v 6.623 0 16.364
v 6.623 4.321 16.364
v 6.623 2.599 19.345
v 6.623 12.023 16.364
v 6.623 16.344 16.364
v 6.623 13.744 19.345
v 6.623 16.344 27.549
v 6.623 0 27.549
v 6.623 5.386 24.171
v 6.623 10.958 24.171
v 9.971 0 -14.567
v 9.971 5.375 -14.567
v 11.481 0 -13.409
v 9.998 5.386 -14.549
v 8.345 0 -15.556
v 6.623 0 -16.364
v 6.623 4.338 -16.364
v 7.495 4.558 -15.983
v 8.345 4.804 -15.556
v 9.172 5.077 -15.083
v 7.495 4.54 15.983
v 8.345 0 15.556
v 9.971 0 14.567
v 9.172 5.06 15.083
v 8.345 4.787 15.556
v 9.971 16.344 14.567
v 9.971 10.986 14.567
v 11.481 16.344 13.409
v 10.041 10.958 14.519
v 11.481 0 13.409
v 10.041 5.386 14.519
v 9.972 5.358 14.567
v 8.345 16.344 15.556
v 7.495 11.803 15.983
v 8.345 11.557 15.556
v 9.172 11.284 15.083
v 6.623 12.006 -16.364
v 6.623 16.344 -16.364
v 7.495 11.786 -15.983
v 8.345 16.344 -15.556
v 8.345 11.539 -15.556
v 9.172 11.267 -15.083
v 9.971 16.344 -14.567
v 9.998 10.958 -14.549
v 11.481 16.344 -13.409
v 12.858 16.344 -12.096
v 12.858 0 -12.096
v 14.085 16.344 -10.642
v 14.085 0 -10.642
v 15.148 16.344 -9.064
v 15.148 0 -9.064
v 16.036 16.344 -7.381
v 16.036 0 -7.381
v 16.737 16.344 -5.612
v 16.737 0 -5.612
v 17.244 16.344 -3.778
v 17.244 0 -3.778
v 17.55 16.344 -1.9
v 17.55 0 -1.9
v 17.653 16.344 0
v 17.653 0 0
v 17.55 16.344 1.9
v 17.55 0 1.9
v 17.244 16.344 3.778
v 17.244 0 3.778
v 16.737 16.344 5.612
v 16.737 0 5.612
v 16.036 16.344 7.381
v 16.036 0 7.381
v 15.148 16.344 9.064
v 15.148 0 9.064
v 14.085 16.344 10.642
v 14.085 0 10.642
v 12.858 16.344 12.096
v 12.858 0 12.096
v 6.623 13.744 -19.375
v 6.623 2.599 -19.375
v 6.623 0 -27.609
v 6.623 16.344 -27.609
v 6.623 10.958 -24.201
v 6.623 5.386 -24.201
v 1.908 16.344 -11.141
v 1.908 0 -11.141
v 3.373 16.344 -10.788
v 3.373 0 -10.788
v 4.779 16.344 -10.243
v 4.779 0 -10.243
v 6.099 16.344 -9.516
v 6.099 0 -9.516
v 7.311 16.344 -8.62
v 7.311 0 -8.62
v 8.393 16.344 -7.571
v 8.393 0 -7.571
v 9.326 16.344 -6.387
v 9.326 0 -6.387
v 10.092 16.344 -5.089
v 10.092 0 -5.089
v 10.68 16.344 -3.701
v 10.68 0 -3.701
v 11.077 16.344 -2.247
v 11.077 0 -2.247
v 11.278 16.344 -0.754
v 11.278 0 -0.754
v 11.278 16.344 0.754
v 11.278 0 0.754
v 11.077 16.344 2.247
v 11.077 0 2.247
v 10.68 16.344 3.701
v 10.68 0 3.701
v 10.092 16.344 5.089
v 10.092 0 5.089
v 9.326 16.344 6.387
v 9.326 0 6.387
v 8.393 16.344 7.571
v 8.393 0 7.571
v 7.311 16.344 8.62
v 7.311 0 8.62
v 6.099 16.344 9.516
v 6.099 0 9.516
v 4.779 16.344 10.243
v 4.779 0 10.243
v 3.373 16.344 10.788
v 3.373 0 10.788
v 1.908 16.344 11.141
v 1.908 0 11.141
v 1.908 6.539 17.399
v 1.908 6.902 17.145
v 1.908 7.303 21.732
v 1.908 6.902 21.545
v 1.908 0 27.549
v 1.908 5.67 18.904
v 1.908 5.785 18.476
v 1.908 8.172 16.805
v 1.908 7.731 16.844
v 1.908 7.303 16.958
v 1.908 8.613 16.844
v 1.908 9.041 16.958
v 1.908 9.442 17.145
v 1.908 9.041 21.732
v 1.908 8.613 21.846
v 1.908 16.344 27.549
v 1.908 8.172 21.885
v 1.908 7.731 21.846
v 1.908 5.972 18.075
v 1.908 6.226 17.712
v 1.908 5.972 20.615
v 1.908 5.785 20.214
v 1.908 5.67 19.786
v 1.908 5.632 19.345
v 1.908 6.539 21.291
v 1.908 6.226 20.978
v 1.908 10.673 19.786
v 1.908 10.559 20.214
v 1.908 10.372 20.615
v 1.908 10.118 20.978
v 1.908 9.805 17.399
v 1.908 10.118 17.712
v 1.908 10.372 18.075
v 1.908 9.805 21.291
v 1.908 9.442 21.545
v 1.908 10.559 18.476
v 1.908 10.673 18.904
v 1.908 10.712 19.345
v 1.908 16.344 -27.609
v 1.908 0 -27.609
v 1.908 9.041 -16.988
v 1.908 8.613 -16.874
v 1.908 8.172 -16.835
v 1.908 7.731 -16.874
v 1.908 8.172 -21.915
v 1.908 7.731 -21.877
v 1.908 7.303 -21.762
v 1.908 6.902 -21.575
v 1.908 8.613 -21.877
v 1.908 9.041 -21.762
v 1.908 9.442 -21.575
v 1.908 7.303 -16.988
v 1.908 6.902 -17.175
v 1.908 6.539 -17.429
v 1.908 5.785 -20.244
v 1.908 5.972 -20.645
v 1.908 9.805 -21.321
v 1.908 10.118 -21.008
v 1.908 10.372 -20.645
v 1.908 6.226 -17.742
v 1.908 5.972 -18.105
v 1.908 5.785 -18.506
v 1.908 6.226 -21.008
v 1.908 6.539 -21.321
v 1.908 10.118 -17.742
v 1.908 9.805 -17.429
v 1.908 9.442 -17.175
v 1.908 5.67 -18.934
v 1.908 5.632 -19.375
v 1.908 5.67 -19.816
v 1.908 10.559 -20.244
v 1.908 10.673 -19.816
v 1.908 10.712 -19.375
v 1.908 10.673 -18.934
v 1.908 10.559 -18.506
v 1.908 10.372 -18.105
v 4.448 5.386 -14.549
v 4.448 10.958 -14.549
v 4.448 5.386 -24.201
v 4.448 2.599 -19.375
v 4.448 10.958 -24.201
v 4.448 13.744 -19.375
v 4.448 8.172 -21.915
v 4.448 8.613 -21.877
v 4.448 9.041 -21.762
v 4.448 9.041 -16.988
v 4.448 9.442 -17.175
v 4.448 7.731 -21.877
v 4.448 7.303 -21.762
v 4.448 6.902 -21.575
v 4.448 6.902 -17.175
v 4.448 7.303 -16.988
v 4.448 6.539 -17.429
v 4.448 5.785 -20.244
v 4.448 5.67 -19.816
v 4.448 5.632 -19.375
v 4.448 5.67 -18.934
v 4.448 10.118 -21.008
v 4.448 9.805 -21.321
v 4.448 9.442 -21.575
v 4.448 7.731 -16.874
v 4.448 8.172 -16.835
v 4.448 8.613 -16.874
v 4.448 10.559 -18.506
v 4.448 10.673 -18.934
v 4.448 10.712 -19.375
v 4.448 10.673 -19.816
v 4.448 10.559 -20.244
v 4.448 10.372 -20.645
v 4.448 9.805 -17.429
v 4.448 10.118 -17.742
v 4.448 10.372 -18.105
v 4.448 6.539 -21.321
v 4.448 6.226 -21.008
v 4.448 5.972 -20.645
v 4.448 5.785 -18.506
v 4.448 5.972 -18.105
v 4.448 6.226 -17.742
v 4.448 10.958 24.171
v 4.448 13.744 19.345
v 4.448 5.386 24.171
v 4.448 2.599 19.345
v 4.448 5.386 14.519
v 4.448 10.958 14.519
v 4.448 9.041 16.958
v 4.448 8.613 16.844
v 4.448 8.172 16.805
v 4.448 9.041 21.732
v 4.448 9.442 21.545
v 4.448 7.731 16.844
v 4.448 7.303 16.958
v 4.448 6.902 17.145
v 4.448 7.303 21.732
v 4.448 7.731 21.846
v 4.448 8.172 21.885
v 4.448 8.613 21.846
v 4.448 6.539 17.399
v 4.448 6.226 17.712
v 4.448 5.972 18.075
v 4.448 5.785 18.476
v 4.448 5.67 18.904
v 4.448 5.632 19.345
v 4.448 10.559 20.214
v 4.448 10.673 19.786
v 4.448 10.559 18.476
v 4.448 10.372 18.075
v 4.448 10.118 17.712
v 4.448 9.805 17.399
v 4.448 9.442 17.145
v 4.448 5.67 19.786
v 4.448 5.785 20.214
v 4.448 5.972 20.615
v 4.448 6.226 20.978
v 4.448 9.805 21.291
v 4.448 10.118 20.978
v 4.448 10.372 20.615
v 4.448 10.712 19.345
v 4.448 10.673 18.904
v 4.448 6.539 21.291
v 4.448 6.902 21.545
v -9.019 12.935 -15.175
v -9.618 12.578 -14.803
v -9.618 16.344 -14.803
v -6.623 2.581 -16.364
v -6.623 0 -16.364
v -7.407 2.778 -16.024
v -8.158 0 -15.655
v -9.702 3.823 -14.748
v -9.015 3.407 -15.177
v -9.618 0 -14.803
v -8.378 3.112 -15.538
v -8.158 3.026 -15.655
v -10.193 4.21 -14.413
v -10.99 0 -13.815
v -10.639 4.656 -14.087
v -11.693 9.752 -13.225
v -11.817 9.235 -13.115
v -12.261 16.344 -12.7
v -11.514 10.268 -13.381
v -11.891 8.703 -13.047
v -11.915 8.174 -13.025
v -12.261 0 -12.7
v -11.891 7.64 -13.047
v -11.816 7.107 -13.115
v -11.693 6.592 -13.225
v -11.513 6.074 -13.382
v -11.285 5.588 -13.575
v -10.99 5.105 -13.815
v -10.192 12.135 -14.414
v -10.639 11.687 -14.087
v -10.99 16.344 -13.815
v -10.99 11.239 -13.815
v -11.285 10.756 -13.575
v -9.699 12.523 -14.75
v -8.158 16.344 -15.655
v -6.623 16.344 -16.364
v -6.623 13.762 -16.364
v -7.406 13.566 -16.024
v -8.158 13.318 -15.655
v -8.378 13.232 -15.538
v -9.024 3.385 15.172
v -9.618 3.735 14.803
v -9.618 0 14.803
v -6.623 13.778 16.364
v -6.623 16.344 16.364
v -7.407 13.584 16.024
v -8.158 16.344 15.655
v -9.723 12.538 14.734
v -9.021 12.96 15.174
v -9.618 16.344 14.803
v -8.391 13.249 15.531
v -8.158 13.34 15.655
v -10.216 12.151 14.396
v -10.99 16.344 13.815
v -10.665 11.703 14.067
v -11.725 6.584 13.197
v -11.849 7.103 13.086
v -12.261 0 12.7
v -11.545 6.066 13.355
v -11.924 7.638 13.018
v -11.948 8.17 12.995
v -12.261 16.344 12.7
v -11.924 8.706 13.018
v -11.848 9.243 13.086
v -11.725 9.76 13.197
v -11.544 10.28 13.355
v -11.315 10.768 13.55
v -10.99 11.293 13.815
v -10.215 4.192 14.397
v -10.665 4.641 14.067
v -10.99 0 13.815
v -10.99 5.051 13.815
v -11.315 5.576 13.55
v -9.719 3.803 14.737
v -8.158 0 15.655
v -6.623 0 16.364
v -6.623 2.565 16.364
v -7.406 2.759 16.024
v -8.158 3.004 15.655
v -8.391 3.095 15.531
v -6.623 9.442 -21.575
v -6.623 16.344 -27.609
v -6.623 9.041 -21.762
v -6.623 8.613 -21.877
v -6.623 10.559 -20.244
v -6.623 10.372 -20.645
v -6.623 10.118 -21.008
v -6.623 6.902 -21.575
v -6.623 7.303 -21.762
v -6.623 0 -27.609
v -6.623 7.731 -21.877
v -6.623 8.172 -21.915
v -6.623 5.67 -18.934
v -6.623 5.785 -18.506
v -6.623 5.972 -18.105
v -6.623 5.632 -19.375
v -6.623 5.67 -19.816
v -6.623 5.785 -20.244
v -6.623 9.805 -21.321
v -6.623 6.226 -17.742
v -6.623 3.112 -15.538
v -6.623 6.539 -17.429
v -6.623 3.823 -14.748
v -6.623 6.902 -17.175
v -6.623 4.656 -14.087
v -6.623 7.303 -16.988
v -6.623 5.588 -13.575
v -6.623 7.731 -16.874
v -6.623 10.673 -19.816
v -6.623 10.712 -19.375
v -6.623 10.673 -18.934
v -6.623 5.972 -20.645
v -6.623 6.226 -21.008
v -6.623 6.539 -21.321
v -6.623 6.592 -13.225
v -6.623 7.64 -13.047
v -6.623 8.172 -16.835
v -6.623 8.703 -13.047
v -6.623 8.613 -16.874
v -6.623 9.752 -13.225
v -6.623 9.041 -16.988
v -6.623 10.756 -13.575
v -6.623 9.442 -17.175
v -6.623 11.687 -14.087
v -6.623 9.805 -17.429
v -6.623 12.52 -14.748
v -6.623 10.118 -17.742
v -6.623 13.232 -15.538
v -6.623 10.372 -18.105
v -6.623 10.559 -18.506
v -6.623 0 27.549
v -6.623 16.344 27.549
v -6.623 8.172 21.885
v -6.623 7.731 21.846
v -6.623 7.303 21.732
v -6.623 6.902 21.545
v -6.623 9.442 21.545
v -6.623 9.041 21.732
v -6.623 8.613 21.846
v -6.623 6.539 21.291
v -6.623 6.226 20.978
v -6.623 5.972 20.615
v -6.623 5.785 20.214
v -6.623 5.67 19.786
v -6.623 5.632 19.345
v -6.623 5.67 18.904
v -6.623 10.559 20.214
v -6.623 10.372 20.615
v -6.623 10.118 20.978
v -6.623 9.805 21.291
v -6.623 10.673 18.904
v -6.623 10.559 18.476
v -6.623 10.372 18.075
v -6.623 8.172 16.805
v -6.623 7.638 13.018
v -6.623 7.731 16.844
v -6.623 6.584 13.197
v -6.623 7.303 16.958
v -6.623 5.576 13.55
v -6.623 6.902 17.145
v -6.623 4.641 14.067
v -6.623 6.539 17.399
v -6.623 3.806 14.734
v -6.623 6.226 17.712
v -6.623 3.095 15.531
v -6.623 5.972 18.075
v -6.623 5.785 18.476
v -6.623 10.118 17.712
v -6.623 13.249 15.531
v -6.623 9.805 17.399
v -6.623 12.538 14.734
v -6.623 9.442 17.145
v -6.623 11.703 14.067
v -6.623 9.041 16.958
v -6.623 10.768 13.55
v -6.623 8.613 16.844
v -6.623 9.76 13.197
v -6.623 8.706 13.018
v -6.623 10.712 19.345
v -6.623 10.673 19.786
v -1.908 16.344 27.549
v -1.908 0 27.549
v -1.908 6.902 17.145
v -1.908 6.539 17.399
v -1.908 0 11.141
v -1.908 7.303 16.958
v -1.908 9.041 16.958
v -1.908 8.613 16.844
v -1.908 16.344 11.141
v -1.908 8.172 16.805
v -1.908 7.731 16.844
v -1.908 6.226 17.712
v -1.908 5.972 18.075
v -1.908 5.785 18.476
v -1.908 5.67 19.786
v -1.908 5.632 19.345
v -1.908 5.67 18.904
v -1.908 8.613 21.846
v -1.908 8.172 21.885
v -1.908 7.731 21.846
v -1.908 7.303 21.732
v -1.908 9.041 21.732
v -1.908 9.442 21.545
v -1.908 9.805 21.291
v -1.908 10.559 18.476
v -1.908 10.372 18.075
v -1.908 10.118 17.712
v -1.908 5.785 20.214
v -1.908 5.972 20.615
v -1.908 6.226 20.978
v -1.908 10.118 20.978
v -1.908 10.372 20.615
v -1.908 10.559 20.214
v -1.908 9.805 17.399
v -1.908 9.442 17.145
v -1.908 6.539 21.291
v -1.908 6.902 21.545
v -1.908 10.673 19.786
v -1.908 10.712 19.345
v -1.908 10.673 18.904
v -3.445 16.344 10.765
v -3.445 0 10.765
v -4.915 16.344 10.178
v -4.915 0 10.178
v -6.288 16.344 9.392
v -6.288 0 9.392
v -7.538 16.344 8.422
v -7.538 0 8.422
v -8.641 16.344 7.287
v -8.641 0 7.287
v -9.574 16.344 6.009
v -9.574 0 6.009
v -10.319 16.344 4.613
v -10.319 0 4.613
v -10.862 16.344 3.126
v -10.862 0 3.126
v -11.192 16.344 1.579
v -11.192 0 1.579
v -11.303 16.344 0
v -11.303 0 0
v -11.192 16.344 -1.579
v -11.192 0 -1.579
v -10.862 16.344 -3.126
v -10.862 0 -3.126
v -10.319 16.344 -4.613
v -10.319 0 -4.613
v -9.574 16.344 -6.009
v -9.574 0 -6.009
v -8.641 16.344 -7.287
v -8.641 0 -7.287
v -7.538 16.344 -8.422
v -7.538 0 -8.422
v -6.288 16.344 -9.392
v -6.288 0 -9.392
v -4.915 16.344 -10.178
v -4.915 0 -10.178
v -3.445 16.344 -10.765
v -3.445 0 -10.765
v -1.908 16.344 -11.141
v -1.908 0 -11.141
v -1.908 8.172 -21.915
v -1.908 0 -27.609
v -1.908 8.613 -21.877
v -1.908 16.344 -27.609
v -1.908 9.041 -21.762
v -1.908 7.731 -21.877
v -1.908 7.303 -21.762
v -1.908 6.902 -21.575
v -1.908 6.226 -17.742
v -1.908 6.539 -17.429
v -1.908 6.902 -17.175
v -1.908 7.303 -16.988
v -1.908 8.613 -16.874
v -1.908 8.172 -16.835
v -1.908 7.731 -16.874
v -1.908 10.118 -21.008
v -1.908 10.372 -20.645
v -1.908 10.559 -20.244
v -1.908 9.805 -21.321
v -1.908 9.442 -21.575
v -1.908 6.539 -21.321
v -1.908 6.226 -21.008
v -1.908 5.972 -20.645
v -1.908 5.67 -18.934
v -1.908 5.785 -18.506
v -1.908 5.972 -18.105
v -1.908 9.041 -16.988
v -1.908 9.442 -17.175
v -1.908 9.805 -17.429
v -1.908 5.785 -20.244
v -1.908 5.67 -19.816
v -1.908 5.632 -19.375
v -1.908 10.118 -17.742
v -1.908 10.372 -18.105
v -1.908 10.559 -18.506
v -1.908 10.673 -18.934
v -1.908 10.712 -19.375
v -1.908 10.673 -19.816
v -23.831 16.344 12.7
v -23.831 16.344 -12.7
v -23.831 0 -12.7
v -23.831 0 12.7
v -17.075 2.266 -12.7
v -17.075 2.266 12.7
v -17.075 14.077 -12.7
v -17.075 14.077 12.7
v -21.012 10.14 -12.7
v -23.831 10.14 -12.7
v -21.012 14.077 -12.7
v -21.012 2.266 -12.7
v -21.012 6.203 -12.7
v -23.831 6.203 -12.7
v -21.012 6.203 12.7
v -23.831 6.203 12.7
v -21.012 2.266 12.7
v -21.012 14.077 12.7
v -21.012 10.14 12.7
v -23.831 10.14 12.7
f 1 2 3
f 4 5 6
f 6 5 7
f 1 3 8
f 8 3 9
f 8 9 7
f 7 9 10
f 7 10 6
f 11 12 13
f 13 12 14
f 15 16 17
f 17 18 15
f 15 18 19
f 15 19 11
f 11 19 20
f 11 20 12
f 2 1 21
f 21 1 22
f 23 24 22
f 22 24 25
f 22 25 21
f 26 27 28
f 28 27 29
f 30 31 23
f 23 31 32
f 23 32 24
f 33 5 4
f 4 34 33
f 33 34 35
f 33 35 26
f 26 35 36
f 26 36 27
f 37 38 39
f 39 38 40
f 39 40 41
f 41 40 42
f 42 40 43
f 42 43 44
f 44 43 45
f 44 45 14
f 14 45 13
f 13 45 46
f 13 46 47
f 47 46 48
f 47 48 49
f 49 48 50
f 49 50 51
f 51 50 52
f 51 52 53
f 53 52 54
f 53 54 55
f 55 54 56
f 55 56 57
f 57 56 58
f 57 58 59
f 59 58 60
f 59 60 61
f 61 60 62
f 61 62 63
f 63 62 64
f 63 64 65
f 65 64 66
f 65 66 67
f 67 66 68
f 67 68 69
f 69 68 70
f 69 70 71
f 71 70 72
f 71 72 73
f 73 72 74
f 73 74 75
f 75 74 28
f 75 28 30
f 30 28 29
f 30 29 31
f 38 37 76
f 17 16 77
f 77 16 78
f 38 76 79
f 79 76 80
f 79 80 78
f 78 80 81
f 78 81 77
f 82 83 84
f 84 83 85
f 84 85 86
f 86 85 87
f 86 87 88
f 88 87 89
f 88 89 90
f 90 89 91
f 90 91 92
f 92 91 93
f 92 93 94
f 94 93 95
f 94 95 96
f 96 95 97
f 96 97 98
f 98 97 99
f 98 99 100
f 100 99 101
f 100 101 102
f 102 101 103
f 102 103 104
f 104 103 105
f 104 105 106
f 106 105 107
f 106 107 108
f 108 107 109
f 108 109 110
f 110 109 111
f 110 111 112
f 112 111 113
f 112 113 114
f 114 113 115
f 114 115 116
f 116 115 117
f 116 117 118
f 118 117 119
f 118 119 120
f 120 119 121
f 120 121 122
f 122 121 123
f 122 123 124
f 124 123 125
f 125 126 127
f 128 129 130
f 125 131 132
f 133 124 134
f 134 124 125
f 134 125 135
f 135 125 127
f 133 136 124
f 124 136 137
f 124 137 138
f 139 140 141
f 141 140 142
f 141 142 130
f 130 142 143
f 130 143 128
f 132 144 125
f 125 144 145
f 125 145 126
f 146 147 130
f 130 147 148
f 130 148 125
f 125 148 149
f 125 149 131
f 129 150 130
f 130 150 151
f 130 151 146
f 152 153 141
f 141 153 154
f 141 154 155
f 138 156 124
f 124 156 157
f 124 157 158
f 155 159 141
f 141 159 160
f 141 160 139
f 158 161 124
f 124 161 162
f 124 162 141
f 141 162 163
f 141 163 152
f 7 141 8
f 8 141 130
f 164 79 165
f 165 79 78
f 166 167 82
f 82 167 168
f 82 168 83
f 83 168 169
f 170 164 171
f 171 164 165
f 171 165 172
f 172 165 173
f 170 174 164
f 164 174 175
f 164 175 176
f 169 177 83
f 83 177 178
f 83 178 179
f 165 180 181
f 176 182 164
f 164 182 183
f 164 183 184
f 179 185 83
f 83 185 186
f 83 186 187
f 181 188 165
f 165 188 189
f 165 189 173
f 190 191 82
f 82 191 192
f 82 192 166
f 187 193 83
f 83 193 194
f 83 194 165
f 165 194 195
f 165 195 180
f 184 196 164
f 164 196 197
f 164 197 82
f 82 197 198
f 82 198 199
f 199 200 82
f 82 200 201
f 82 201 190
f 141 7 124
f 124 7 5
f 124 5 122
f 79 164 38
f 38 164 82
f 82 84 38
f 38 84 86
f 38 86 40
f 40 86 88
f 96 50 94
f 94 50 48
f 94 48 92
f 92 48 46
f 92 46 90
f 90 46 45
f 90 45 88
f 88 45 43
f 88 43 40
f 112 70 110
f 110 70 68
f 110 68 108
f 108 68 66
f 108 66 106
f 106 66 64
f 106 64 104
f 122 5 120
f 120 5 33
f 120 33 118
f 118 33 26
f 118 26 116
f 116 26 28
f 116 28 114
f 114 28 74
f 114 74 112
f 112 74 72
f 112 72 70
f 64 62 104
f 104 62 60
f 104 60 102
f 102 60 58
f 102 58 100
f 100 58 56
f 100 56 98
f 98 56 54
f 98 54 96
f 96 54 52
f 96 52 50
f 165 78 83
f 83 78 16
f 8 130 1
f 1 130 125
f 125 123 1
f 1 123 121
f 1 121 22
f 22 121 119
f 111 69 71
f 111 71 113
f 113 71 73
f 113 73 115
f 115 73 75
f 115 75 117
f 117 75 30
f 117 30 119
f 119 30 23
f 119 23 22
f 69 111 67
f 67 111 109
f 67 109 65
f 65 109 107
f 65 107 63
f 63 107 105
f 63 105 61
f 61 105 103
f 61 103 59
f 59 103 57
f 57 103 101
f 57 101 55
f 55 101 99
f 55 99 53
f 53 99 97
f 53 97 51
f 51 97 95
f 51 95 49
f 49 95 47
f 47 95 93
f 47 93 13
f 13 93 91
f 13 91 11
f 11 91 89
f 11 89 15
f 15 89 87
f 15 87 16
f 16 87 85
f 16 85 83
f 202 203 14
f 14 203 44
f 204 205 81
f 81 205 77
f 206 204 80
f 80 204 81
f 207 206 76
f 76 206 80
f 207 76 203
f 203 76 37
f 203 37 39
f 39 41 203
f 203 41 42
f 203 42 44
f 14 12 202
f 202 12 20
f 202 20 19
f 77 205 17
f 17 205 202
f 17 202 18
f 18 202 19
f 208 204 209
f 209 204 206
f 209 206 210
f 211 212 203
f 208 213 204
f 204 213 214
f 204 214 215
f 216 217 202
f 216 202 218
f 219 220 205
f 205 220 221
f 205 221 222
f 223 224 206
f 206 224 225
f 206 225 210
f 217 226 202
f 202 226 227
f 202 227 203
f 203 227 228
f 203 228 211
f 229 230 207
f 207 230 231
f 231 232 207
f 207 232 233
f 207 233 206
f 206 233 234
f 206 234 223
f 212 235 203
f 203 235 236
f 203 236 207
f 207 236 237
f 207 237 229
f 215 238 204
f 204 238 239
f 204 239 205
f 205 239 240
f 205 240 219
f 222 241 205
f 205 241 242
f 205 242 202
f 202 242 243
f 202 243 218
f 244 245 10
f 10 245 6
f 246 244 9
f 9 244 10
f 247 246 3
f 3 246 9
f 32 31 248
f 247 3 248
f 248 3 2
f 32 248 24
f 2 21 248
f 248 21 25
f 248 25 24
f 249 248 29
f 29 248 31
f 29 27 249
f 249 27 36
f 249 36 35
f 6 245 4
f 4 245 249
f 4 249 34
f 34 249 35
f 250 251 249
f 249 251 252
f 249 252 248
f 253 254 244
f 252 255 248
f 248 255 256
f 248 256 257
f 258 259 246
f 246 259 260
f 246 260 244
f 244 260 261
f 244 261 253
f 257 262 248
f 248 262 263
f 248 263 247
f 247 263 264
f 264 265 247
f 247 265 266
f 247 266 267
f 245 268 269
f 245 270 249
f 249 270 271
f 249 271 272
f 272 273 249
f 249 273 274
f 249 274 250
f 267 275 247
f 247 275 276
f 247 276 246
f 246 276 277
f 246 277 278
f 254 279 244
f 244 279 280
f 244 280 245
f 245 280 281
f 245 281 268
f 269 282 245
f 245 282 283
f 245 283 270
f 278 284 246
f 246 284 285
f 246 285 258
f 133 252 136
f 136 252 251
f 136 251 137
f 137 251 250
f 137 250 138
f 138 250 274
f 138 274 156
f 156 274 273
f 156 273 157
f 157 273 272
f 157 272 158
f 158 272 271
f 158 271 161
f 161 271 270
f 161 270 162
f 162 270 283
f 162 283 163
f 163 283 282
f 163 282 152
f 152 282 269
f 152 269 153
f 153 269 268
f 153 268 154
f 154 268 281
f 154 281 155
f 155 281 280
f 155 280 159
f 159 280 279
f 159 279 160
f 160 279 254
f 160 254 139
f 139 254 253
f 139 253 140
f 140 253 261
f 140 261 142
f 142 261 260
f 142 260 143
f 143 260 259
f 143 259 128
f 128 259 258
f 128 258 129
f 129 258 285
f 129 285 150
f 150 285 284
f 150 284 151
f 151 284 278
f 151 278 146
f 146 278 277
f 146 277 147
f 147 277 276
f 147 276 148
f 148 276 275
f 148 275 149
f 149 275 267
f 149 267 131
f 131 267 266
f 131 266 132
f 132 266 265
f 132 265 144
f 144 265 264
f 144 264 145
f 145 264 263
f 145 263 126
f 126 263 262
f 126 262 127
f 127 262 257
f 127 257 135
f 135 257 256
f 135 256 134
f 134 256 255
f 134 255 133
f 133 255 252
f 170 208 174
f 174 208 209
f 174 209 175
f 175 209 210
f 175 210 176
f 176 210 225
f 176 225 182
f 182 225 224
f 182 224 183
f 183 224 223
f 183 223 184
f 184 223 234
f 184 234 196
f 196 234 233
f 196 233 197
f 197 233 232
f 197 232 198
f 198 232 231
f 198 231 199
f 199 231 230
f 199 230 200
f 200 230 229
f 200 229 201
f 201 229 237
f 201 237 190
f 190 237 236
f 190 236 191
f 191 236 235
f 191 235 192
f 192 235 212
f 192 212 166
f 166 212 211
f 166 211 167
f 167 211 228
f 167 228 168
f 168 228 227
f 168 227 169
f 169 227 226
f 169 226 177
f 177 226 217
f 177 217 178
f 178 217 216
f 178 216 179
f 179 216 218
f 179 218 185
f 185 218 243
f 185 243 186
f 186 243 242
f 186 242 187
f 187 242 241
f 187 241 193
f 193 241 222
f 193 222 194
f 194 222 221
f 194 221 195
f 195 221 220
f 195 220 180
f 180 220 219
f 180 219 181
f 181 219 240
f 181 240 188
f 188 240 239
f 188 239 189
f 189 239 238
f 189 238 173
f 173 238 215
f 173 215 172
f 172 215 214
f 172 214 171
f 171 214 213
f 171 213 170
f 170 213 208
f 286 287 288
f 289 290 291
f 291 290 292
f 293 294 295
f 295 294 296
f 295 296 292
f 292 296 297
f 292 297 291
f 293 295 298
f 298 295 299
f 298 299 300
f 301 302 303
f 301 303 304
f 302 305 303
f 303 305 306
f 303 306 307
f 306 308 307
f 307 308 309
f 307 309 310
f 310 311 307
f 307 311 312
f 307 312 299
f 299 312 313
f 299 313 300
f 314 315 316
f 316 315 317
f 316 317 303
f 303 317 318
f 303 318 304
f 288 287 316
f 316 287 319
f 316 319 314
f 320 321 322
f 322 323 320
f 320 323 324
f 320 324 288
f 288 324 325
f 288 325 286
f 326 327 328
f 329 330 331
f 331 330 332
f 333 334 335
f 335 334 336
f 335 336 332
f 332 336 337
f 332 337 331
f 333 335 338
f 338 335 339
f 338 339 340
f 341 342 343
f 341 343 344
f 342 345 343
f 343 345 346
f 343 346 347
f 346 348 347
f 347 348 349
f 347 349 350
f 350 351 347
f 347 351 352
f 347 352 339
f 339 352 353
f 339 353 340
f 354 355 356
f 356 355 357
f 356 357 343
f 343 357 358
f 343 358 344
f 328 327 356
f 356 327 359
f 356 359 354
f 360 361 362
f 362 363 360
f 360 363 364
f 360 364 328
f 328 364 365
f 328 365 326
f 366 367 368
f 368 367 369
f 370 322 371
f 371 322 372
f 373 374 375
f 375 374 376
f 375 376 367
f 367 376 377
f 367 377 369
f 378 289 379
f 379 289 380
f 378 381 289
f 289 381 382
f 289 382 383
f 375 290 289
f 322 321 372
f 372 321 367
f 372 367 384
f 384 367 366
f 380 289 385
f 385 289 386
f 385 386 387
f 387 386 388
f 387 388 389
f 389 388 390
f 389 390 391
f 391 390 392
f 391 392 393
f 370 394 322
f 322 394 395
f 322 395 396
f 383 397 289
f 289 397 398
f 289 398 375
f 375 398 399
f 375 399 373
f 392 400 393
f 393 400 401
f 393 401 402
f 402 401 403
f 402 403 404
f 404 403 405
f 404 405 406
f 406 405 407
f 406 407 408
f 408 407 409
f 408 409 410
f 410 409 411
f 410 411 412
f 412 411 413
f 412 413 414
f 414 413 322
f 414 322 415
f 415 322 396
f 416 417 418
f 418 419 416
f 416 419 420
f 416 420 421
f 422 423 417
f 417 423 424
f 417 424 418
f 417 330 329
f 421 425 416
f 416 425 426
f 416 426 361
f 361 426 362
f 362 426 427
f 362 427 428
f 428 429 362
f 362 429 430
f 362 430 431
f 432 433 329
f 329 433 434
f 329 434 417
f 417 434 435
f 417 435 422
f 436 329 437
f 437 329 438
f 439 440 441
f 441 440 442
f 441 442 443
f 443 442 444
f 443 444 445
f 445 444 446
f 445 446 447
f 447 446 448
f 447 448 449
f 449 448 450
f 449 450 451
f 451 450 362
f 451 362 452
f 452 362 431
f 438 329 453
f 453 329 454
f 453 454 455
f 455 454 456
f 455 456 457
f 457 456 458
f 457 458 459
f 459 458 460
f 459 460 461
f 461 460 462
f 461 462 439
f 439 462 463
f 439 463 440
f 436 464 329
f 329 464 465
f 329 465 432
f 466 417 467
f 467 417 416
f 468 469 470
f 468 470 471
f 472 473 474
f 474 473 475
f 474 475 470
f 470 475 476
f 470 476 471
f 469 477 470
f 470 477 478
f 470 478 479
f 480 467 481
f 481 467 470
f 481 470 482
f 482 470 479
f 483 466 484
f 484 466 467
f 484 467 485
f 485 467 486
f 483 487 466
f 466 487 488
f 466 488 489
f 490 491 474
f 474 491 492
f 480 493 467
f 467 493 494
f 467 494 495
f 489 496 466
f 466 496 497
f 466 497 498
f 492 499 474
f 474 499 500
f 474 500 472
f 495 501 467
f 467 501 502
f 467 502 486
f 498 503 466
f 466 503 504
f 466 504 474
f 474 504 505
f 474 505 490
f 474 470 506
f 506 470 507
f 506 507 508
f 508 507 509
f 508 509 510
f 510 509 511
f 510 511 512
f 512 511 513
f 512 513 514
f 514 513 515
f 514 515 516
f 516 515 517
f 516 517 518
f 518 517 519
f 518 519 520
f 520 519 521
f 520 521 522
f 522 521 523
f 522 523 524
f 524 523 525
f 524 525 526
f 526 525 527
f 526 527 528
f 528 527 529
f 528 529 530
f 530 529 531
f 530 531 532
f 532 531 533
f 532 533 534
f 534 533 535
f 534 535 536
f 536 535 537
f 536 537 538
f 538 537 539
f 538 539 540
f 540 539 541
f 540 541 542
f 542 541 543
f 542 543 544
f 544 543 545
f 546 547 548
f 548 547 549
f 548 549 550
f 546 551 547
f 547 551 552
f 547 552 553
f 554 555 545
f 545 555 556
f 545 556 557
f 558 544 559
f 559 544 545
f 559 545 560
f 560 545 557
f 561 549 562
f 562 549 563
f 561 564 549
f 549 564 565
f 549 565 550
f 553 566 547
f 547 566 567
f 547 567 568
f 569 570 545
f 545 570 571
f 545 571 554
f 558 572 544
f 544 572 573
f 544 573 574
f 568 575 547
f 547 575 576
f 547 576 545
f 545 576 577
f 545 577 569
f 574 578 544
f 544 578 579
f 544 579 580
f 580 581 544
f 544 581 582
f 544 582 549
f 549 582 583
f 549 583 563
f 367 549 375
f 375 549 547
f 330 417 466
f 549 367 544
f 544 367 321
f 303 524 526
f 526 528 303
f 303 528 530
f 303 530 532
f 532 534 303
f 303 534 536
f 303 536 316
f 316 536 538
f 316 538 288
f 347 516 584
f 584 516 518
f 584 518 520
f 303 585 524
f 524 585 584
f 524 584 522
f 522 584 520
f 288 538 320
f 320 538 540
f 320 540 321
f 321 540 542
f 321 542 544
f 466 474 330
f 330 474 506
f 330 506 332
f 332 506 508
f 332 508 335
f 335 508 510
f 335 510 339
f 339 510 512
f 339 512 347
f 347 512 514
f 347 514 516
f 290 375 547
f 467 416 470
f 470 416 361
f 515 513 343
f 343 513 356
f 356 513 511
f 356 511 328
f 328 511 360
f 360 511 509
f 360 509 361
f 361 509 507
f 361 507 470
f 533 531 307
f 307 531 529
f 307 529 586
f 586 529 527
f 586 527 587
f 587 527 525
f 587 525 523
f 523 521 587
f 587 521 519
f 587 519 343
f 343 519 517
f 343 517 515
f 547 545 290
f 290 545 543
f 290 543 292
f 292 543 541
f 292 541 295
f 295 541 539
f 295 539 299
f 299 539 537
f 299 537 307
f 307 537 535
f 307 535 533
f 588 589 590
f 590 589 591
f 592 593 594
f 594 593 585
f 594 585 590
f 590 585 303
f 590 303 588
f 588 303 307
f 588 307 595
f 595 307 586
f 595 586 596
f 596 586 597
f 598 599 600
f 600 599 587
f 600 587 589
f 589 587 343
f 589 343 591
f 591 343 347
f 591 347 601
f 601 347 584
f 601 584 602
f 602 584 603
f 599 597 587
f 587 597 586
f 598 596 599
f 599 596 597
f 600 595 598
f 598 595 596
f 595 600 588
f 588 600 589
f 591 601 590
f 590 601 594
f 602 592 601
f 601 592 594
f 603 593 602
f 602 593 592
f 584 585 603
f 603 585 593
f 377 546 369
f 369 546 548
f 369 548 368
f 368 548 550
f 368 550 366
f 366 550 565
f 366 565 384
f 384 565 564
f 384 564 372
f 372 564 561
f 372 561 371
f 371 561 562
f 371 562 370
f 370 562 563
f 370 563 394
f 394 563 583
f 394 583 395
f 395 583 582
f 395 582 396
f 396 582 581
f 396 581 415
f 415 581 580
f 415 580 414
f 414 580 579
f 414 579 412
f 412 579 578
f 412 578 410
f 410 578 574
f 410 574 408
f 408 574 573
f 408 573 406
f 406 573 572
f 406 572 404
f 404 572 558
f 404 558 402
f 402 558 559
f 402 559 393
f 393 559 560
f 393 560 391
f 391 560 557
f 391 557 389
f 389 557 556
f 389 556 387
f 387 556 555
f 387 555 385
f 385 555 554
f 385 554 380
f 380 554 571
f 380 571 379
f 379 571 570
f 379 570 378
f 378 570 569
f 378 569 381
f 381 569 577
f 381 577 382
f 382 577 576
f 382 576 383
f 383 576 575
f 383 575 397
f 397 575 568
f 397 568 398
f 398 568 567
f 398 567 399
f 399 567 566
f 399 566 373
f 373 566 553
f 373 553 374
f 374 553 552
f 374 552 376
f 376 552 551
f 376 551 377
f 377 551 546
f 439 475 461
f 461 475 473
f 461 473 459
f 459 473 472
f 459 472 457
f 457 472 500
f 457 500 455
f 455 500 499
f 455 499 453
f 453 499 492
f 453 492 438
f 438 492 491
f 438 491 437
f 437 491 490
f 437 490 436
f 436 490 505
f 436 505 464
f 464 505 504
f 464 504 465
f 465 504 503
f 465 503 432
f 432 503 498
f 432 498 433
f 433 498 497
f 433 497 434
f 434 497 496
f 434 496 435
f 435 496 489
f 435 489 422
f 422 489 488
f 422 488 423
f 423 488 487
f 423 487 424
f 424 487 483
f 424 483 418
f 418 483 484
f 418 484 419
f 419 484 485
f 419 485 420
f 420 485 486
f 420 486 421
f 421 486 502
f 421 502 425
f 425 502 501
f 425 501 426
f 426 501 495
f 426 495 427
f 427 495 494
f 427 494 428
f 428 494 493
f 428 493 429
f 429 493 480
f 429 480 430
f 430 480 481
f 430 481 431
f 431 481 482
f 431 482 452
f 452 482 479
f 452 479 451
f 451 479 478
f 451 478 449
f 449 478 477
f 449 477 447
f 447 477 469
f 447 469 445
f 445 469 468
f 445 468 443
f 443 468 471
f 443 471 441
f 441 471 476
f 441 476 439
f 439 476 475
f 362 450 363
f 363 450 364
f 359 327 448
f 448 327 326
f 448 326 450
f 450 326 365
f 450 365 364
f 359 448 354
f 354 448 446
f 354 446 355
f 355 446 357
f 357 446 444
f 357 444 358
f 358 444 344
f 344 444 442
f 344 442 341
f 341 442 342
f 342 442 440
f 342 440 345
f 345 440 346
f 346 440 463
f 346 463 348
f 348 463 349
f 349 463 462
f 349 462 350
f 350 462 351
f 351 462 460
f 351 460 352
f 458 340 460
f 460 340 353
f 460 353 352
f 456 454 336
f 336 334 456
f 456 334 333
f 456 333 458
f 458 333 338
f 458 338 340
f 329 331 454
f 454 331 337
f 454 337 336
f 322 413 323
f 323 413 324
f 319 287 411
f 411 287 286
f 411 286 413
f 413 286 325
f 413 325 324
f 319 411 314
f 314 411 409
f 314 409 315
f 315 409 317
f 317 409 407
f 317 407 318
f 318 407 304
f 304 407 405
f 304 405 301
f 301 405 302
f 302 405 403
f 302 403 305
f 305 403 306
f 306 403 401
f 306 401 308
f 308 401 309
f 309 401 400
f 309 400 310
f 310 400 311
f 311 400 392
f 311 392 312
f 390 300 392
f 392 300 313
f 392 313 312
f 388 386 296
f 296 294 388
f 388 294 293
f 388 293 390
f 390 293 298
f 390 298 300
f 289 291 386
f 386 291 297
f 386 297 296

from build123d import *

# Parameters (mm, degrees)
BOSS_EXTRUDE1_DEPTH      = 16.343724405
BOSS_EXTRUDE1_2_DEPTH    = 16.343724405
CUT_EXTRUDE1_START       = 2.54
CUT_EXTRUDE1_DEPTH       = 11.43
BOSS_EXTRUDE2_DEPTH      = 12.7
BOSS_EXTRUDE2_DEPTH_BACK = 12.7
SKETCH3_3_W              = 2.8194
SKETCH3_3_H              = 3.937
SKETCH3_3_W_2            = 0.578220869
SKETCH3_3_H_2            = 11.811
CUT_EXTRUDE5_DEPTH       = 28.549251506
CUT_EXTRUDE5_DEPTH_BACK  = 28.609404293
SKETCH2_7_R              = 2.54
CUT_EXTRUDE6_DEPTH       = 16.744973729
CUT_EXTRUDE6_DEPTH_BACK  = 26.739205402
CUT_EXTRUDE7_START       = -8.53076
SKETCH2_8_R              = 6.35
CUT_EXTRUDE7_DEPTH       = 24.638


with BuildPart() as part:
    # Sketch1 → Boss-Extrude1 (new body)
    with BuildSketch(Plane(origin=(0, 0, 0), x_dir=(1, 0, 0), z_dir=(0, 1, 0))):
        with BuildLine():
            Line((1.908026271, -27.549251506), (6.622734164, -27.549251506))
            Line((6.622734164, -27.549251506), (6.622734164, -16.363612107))
            ThreePointArc((6.622734164, -16.363612107), (17.653, 0), (6.622734164, 16.363612107))
            Line((6.622734164, 16.363612107), (6.622734164, 27.609404293))
            Line((6.622734164, 27.609404293), (1.908026271, 27.609404293))
            Line((1.908026271, 27.609404293), (1.908026271, 11.140791926))
            ThreePointArc((1.908026271, 11.140791926), (11.303, 0), (1.908026271, -11.140791926))
            Line((1.908026271, -11.140791926), (1.908026271, -27.549251506))
        make_face()
    extrude(amount=BOSS_EXTRUDE1_DEPTH)

    # Sketch2 → Cut-Extrude1 (cut)
    with BuildSketch(Plane(origin=(1.908026271, 0, 1.908026271), x_dir=(0, 0, -1), z_dir=(1, 0, 0)).offset(CUT_EXTRUDE1_START)):
        Polygon((21.283124381, 2.599277405), (26.109124381, 5.385569804), (26.109124381, 10.958154602), (21.283124381, 13.744447001), (16.457124381, 10.958154602), (16.457124381, 5.385569804), align=None)
        Polygon((-17.436995445, 2.599277405), (-12.610995445, 5.385569804), (-12.610995445, 10.958154602), (-17.436995445, 13.744447001), (-22.262995445, 10.958154602), (-22.262995445, 5.385569804), align=None)
    extrude(amount=CUT_EXTRUDE1_DEPTH, mode=Mode.SUBTRACT)


with BuildPart() as body_2:
    # Sketch1 → Boss-Extrude1 2 (new body)
    with BuildSketch(Plane(origin=(0, 0, 0), x_dir=(1, 0, 0), z_dir=(0, 1, 0))):
        with BuildLine():
            Line((-6.622734164, -27.549251506), (-1.908026271, -27.549251506))
            Line((-1.908026271, -27.549251506), (-1.908026271, -11.140791926))
            ThreePointArc((-1.908026271, -11.140791926), (-11.303, 0), (-1.908026271, 11.140791926))
            Line((-1.908026271, 11.140791926), (-1.908026271, 27.609404293))
            Line((-1.908026271, 27.609404293), (-6.622734164, 27.609404293))
            Line((-6.622734164, 27.609404293), (-6.622734164, 16.363612107))
            ThreePointArc((-6.622734164, 16.363612107), (-17.653, 0), (-6.622734164, -16.363612107))
            Line((-6.622734164, -16.363612107), (-6.622734164, -27.549251506))
        make_face()
    extrude(amount=BOSS_EXTRUDE1_2_DEPTH)

    # Sketch3 → Boss-Extrude2 (add, two sides)
    with BuildSketch(Plane.XY) as boss_extrude2_sk:
        Polygon((-23.831179131, 0), (-17.653, 0), (-17.653, 2.266362203), (-21.011779131, 2.266362203), (-21.011779131, 6.203362203), (-23.831179131, 6.203362203), align=None)
        Polygon((-11.957162625, 0), (-11.957162625, 16.343724405), (-17.653, 16.343724405), (-17.653, 14.077362203), (-17.074779131, 14.077362203), (-17.074779131, 2.266362203), (-17.653, 2.266362203), (-17.653, 0), align=None)
        Polygon((-17.653, 14.077362203), (-17.653, 16.343724405), (-23.831179131, 16.343724405), (-23.831179131, 10.140362203), (-21.011779131, 10.140362203), (-21.011779131, 14.077362203), align=None)
    extrude(amount=BOSS_EXTRUDE2_DEPTH)
    extrude(boss_extrude2_sk.sketch, amount=-BOSS_EXTRUDE2_DEPTH_BACK)

    # Sketch3<3> → Cut-Extrude5 (cut, two sides)
    with BuildSketch(Plane.XY) as cut_extrude5_sk:
        Polygon((-17.653, 2.266362203), (-17.653, 14.077362203), (-21.011779131, 14.077362203), (-21.011779131, 10.140362203), (-21.011779131, 6.203362203), (-21.011779131, 2.266362203), align=None)
        with Locations((-22.421479131, 8.171862203)):
            Rectangle(SKETCH3_3_W, SKETCH3_3_H)
        with Locations((-17.363889566, 8.171862203)):
            Rectangle(SKETCH3_3_W_2, SKETCH3_3_H_2)
    extrude(amount=CUT_EXTRUDE5_DEPTH, mode=Mode.SUBTRACT)
    extrude(cut_extrude5_sk.sketch, amount=-CUT_EXTRUDE5_DEPTH_BACK, mode=Mode.SUBTRACT)


with BuildPart() as cut_extrude6_tool:
    # Sketch2<7> → Cut-Extrude6 (new body, two sides)
    with BuildSketch(Plane(origin=(1.908026271, 0, 1.908026271), x_dir=(0, 0, -1), z_dir=(1, 0, 0))) as cut_extrude6_sk:
        with Locations((21.283124381, 8.171862203)):
            Circle(SKETCH2_7_R)
        with Locations((-17.436995445, 8.171862203)):
            Circle(SKETCH2_7_R)
    extrude(amount=CUT_EXTRUDE6_DEPTH)
    extrude(cut_extrude6_sk.sketch, amount=-CUT_EXTRUDE6_DEPTH_BACK)


with BuildPart() as part_1:
    add(part.part)

    # Cut-Extrude6: cut by cut_extrude6_tool
    add(cut_extrude6_tool.part, mode=Mode.SUBTRACT)


with BuildPart() as body_2_1:
    add(body_2.part)

    # Cut-Extrude6: cut by cut_extrude6_tool
    add(cut_extrude6_tool.part, mode=Mode.SUBTRACT)

    # Sketch2<8> → Cut-Extrude7 (cut)
    with BuildSketch(Plane(origin=(1.908026271, 0, 1.908026271), x_dir=(0, 0, -1), z_dir=(1, 0, 0)).offset(CUT_EXTRUDE7_START)):
        with Locations((21.283124381, 8.171862203)):
            Circle(SKETCH2_8_R)
        with Locations((-17.436995445, 8.171862203)):
            Circle(SKETCH2_8_R)
    extrude(amount=-CUT_EXTRUDE7_DEPTH, mode=Mode.SUBTRACT)


solid = Compound([part_1.part, body_2_1.part])
